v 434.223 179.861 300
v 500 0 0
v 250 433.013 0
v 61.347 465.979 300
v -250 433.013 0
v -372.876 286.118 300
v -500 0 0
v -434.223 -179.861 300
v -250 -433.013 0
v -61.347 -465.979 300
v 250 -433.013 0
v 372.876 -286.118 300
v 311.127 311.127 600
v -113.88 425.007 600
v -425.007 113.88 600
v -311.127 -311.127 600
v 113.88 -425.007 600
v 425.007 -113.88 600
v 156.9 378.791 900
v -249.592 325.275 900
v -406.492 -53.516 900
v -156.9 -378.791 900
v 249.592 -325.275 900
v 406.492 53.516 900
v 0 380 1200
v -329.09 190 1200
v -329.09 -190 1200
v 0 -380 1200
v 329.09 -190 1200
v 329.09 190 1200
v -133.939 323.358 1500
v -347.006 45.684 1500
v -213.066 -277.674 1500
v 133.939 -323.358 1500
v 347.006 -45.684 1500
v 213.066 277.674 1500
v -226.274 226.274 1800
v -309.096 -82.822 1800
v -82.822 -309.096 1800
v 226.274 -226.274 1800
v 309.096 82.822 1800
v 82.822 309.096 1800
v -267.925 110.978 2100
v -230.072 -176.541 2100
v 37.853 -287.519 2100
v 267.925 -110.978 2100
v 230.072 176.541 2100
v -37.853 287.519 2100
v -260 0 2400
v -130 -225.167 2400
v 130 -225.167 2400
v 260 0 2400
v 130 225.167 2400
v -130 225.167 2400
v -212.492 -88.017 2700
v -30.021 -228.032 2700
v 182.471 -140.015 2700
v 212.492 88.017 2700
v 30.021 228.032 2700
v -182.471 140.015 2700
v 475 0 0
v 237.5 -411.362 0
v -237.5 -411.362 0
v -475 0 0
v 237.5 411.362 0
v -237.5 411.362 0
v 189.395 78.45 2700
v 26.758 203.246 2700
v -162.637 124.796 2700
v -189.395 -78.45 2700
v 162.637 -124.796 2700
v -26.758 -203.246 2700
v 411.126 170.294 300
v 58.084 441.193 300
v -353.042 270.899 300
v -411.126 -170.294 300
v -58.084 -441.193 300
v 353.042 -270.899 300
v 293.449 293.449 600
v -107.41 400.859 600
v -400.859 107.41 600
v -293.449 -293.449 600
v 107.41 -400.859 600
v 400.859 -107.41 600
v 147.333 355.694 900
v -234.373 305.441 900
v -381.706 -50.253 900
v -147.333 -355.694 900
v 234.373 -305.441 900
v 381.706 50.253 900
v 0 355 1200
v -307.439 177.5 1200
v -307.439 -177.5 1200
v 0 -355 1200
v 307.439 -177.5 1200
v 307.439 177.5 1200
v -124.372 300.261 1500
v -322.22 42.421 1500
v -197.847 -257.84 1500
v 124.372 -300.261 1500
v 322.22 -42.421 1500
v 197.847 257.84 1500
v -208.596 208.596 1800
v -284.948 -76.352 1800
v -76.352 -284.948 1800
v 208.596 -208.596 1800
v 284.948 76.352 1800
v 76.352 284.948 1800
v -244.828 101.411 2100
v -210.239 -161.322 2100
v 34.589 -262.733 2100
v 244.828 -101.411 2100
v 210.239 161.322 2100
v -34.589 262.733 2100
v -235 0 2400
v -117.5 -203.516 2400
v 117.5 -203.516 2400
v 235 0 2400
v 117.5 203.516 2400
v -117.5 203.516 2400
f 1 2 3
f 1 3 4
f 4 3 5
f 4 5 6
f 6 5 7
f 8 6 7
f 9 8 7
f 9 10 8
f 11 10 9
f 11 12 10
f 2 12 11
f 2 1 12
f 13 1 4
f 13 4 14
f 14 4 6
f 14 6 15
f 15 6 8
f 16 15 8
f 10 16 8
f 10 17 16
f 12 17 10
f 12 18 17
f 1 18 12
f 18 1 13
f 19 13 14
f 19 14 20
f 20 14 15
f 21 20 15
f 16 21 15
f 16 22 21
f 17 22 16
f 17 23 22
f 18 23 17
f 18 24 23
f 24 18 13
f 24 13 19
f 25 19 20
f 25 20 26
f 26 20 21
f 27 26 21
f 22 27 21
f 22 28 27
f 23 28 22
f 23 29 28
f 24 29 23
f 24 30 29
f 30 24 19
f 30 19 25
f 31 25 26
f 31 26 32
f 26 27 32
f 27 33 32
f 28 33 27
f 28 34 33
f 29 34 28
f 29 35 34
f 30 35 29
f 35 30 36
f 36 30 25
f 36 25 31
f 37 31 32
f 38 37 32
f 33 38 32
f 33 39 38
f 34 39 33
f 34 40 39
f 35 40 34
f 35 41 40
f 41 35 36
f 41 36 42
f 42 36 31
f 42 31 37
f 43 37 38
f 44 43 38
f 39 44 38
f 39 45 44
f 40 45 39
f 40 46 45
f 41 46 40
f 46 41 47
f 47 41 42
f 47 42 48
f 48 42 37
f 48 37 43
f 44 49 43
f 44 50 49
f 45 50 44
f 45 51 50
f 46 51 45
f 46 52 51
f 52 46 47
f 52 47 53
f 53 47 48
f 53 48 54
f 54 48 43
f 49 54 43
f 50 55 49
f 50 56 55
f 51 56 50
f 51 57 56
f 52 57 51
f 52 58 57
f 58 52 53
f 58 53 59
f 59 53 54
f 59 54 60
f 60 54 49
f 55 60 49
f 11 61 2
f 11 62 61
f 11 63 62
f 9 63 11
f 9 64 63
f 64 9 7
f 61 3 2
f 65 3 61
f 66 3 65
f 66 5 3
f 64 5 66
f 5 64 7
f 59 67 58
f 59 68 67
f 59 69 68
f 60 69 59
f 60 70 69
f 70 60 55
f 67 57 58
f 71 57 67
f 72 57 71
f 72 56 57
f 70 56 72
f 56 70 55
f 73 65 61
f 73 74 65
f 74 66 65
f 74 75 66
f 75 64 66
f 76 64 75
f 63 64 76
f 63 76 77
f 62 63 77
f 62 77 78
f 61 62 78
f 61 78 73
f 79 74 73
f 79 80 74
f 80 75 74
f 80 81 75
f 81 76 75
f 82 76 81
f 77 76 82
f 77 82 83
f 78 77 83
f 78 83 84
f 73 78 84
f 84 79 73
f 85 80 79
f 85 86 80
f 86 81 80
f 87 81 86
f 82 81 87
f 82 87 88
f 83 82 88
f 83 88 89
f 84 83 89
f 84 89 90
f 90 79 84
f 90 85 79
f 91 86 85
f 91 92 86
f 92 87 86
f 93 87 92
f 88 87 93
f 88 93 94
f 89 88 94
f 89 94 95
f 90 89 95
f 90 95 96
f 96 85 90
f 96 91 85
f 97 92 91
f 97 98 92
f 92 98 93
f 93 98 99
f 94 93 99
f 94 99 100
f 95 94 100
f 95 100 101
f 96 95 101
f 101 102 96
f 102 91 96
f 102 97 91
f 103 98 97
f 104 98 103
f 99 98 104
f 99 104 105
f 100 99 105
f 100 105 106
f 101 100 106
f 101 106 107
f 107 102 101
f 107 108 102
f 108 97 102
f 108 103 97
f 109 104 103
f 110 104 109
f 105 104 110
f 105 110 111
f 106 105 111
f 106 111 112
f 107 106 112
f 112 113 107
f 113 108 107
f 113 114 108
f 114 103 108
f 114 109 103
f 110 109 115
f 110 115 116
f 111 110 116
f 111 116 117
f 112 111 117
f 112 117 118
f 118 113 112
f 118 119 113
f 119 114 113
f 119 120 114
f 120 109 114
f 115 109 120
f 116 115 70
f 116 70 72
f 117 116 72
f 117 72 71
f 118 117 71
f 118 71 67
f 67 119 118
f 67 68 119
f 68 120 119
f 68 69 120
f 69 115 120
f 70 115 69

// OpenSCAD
difference() {
	polyhedron(faces = [[0, 6, 1], [1, 6, 7], [1, 7, 2], [2, 7, 8], [2, 8, 3], [3, 8, 9], [3, 9, 4], [4, 9, 10], [4, 10, 5], [5, 10, 11], [5, 11, 0], [0, 11, 6], [6, 12, 7], [7, 12, 13], [7, 13, 8], [8, 13, 14], [8, 14, 9], [9, 14, 15], [9, 15, 10], [10, 15, 16], [10, 16, 11], [11, 16, 17], [11, 17, 6], [6, 17, 12], [12, 18, 13], [13, 18, 19], [13, 19, 14], [14, 19, 20], [14, 20, 15], [15, 20, 21], [15, 21, 16], [16, 21, 22], [16, 22, 17], [17, 22, 23], [17, 23, 12], [12, 23, 18], [18, 24, 19], [19, 24, 25], [19, 25, 20], [20, 25, 26], [20, 26, 21], [21, 26, 27], [21, 27, 22], [22, 27, 28], [22, 28, 23], [23, 28, 29], [23, 29, 18], [18, 29, 24], [24, 30, 25], [25, 30, 31], [25, 31, 26], [26, 31, 32], [26, 32, 27], [27, 32, 33], [27, 33, 28], [28, 33, 34], [28, 34, 29], [29, 34, 35], [29, 35, 24], [24, 35, 30], [30, 36, 31], [31, 36, 37], [31, 37, 32], [32, 37, 38], [32, 38, 33], [33, 38, 39], [33, 39, 34], [34, 39, 40], [34, 40, 35], [35, 40, 41], [35, 41, 30], [30, 41, 36], [36, 42, 37], [37, 42, 43], [37, 43, 38], [38, 43, 44], [38, 44, 39], [39, 44, 45], [39, 45, 40], [40, 45, 46], [40, 46, 41], [41, 46, 47], [41, 47, 36], [36, 47, 42], [42, 48, 43], [43, 48, 49], [43, 49, 44], [44, 49, 50], [44, 50, 45], [45, 50, 51], [45, 51, 46], [46, 51, 52], [46, 52, 47], [47, 52, 53], [47, 53, 42], [42, 53, 48], [48, 54, 49], [49, 54, 55], [49, 55, 50], [50, 55, 56], [50, 56, 51], [51, 56, 57], [51, 57, 52], [52, 57, 58], [52, 58, 53], [53, 58, 59], [53, 59, 48], [48, 59, 54], [1, 60, 0], [54, 61, 55], [2, 60, 1], [55, 61, 56], [3, 60, 2], [56, 61, 57], [4, 60, 3], [57, 61, 58], [5, 60, 4], [58, 61, 59], [0, 60, 5], [59, 61, 54]], points = [[500.0000000000, 0.0000000000, 0.0000000000], [250.0000000000, 433.0127018922, 0.0000000000], [-250.0000000000, 433.0127018922, 0.0000000000], [-500.0000000000, 0.0000000000, 0.0000000000], [-250.0000000000, -433.0127018922, 0.0000000000], [250.0000000000, -433.0127018922, 0.0000000000], [434.2233802803, 179.8612132116, 300.0000000000], [61.3473103434, 465.9790848457, 300.0000000000], [-372.8760699369, 286.1178716341, 300.0000000000], [-434.2233802803, -179.8612132116, 300.0000000000], [-61.3473103434, -465.9790848457, 300.0000000000], [372.8760699369, -286.1178716341, 300.0000000000], [311.1269837221, 311.1269837221, 600.0000000000], [-113.8803798451, 425.0073635672, 600.0000000000], [-425.0073635672, 113.8803798451, 600.0000000000], [-311.1269837221, -311.1269837221, 600.0000000000], [113.8803798451, -425.0073635672, 600.0000000000], [425.0073635672, -113.8803798451, 600.0000000000], [156.9002072697, 378.7906083296, 900.0000000000], [-249.5921858936, 325.2748695194, 900.0000000000], [-406.4923931633, -53.5157388102, 900.0000000000], [-156.9002072697, -378.7906083296, 900.0000000000], [249.5921858936, -325.2748695194, 900.0000000000], [406.4923931633, 53.5157388102, 900.0000000000], [0.0000000000, 380.0000000000, 1200.0000000000], [-329.0896534381, 190.0000000000, 1200.0000000000], [-329.0896534381, -190.0000000000, 1200.0000000000], [-0.0000000000, -380.0000000000, 1200.0000000000], [329.0896534381, -190.0000000000, 1200.0000000000], [329.0896534381, 190.0000000000, 1200.0000000000], [-133.9392013278, 323.3578363790, 1500.0000000000], [-347.0057014808, 45.6841672770, 1500.0000000000], [-213.0665001531, -277.6736691019, 1500.0000000000], [133.9392013278, -323.3578363790, 1500.0000000000], [347.0057014808, -45.6841672770, 1500.0000000000], [213.0665001531, 277.6736691019, 1500.0000000000], [-226.2741699797, 226.2741699797, 1800.0000000000], [-309.0962644125, -82.8220944328, 1800.0000000000], [-82.8220944328, -309.0962644125, 1800.0000000000], [226.2741699797, -226.2741699797, 1800.0000000000], [309.0962644125, 82.8220944328, 1800.0000000000], [82.8220944328, 309.0962644125, 1800.0000000000], [-267.9250644283, 110.9781953859, 2100.0000000000], [-230.0724686845, -176.5408144125, 2100.0000000000], [37.8525957438, -287.5190097984, 2100.0000000000], [267.9250644283, -110.9781953859, 2100.0000000000], [230.0724686845, 176.5408144125, 2100.0000000000], [-37.8525957438, 287.5190097984, 2100.0000000000], [-260.0000000000, 0.0000000000, 2400.0000000000], [-130.0000000000, -225.1666049840, 2400.0000000000], [130.0000000000, -225.1666049840, 2400.0000000000], [260.0000000000, -0.0000000000, 2400.0000000000], [130.0000000000, 225.1666049840, 2400.0000000000], [-130.0000000000, 225.1666049840, 2400.0000000000], [-212.4922924776, -88.0171894440, 2700.0000000000], [-30.0210242106, -228.0323181160, 2700.0000000000], [182.4712682670, -140.0151286720, 2700.0000000000], [212.4922924776, 88.0171894440, 2700.0000000000], [30.0210242106, 228.0323181160, 2700.0000000000], [-182.4712682670, 140.0151286720, 2700.0000000000], [-0.0000000000, 0.0000000000, 0.0000000000], [0.0000000000, 0.0000000000, 2700.0000000000]]);
	polyhedron(faces = [[0, 6, 1], [1, 6, 7], [1, 7, 2], [2, 7, 8], [2, 8, 3], [3, 8, 9], [3, 9, 4], [4, 9, 10], [4, 10, 5], [5, 10, 11], [5, 11, 0], [0, 11, 6], [6, 12, 7], [7, 12, 13], [7, 13, 8], [8, 13, 14], [8, 14, 9], [9, 14, 15], [9, 15, 10], [10, 15, 16], [10, 16, 11], [11, 16, 17], [11, 17, 6], [6, 17, 12], [12, 18, 13], [13, 18, 19], [13, 19, 14], [14, 19, 20], [14, 20, 15], [15, 20, 21], [15, 21, 16], [16, 21, 22], [16, 22, 17], [17, 22, 23], [17, 23, 12], [12, 23, 18], [18, 24, 19], [19, 24, 25], [19, 25, 20], [20, 25, 26], [20, 26, 21], [21, 26, 27], [21, 27, 22], [22, 27, 28], [22, 28, 23], [23, 28, 29], [23, 29, 18], [18, 29, 24], [24, 30, 25], [25, 30, 31], [25, 31, 26], [26, 31, 32], [26, 32, 27], [27, 32, 33], [27, 33, 28], [28, 33, 34], [28, 34, 29], [29, 34, 35], [29, 35, 24], [24, 35, 30], [30, 36, 31], [31, 36, 37], [31, 37, 32], [32, 37, 38], [32, 38, 33], [33, 38, 39], [33, 39, 34], [34, 39, 40], [34, 40, 35], [35, 40, 41], [35, 41, 30], [30, 41, 36], [36, 42, 37], [37, 42, 43], [37, 43, 38], [38, 43, 44], [38, 44, 39], [39, 44, 45], [39, 45, 40], [40, 45, 46], [40, 46, 41], [41, 46, 47], [41, 47, 36], [36, 47, 42], [42, 48, 43], [43, 48, 49], [43, 49, 44], [44, 49, 50], [44, 50, 45], [45, 50, 51], [45, 51, 46], [46, 51, 52], [46, 52, 47], [47, 52, 53], [47, 53, 42], [42, 53, 48], [48, 54, 49], [49, 54, 55], [49, 55, 50], [50, 55, 56], [50, 56, 51], [51, 56, 57], [51, 57, 52], [52, 57, 58], [52, 58, 53], [53, 58, 59], [53, 59, 48], [48, 59, 54], [1, 60, 0], [54, 61, 55], [2, 60, 1], [55, 61, 56], [3, 60, 2], [56, 61, 57], [4, 60, 3], [57, 61, 58], [5, 60, 4], [58, 61, 59], [0, 60, 5], [59, 61, 54]], points = [[475.0000000000, 0.0000000000, 0.0000000000], [237.5000000000, 411.3620667976, 0.0000000000], [-237.5000000000, 411.3620667976, 0.0000000000], [-475.0000000000, 0.0000000000, 0.0000000000], [-237.5000000000, -411.3620667976, 0.0000000000], [237.5000000000, -411.3620667976, 0.0000000000], [411.1263919675, 170.2941274025, 300.0000000000], [58.0841555379, 441.1929633113, 300.0000000000], [-353.0422364296, 270.8988359089, 300.0000000000], [-411.1263919675, -170.2941274025, 300.0000000000], [-58.0841555379, -441.1929633113, 300.0000000000], [353.0422364296, -270.8988359089, 300.0000000000], [293.4493141924, 293.4493141924, 600.0000000000], [-107.4099037175, 400.8592179100, 600.0000000000], [-400.8592179100, 107.4099037175, 600.0000000000], [-293.4493141924, -293.4493141924, 600.0000000000], [107.4099037175, -400.8592179100, 600.0000000000], [400.8592179100, -107.4099037175, 600.0000000000], [147.3331214606, 355.6936200168, 900.0000000000], [-234.3731501684, 305.4410360121, 900.0000000000], [-381.7062716289, -50.2525840047, 900.0000000000], [-147.3331214606, -355.6936200168, 900.0000000000], [234.3731501684, -305.4410360121, 900.0000000000], [381.7062716289, 50.2525840047, 900.0000000000], [0.0000000000, 355.0000000000, 1200.0000000000], [-307.4390183435, 177.5000000000, 1200.0000000000], [-307.4390183435, -177.5000000000, 1200.0000000000], [-0.0000000000, -355.0000000000, 1200.0000000000], [307.4390183435, -177.5000000000, 1200.0000000000], [307.4390183435, 177.5000000000, 1200.0000000000], [-124.3721155187, 300.2608480662, 1500.0000000000], [-322.2195799465, 42.4210124715, 1500.0000000000], [-197.8474644278, -257.8398355947, 1500.0000000000], [124.3721155187, -300.2608480662, 1500.0000000000], [322.2195799465, -42.4210124715, 1500.0000000000], [197.8474644278, 257.8398355947, 1500.0000000000], [-208.5965004500, 208.5965004500, 1800.0000000000], [-284.9481187553, -76.3516183052, 1800.0000000000], [-76.3516183052, -284.9481187553, 1800.0000000000], [208.5965004500, -208.5965004500, 1800.0000000000], [284.9481187553, 76.3516183052, 1800.0000000000], [76.3516183052, 284.9481187553, 1800.0000000000], [-244.8280761155, 101.4111095767, 2100.0000000000], [-210.2386351772, -161.3217786873, 2100.0000000000], [34.5894409383, -262.7328882641, 2100.0000000000], [244.8280761155, -101.4111095767, 2100.0000000000], [210.2386351772, 161.3217786873, 2100.0000000000], [-34.5894409383, 262.7328882641, 2100.0000000000], [-235.0000000000, 0.0000000000, 2400.0000000000], [-117.5000000000, -203.5159698893, 2400.0000000000], [117.5000000000, -203.5159698893, 2400.0000000000], [235.0000000000, -0.0000000000, 2400.0000000000], [117.5000000000, 203.5159698893, 2400.0000000000], [-117.5000000000, 203.5159698893, 2400.0000000000], [-189.3953041648, -78.4501036348, 2700.0000000000], [-26.7578694051, -203.2461965816, 2700.0000000000], [162.6374347597, -124.7960929468, 2700.0000000000], [189.3953041648, 78.4501036348, 2700.0000000000], [26.7578694051, 203.2461965816, 2700.0000000000], [-162.6374347597, 124.7960929468, 2700.0000000000], [-0.0000000000, 0.0000000000, 0.0000000000], [0.0000000000, 0.0000000000, 2700.0000000000]]);
}
